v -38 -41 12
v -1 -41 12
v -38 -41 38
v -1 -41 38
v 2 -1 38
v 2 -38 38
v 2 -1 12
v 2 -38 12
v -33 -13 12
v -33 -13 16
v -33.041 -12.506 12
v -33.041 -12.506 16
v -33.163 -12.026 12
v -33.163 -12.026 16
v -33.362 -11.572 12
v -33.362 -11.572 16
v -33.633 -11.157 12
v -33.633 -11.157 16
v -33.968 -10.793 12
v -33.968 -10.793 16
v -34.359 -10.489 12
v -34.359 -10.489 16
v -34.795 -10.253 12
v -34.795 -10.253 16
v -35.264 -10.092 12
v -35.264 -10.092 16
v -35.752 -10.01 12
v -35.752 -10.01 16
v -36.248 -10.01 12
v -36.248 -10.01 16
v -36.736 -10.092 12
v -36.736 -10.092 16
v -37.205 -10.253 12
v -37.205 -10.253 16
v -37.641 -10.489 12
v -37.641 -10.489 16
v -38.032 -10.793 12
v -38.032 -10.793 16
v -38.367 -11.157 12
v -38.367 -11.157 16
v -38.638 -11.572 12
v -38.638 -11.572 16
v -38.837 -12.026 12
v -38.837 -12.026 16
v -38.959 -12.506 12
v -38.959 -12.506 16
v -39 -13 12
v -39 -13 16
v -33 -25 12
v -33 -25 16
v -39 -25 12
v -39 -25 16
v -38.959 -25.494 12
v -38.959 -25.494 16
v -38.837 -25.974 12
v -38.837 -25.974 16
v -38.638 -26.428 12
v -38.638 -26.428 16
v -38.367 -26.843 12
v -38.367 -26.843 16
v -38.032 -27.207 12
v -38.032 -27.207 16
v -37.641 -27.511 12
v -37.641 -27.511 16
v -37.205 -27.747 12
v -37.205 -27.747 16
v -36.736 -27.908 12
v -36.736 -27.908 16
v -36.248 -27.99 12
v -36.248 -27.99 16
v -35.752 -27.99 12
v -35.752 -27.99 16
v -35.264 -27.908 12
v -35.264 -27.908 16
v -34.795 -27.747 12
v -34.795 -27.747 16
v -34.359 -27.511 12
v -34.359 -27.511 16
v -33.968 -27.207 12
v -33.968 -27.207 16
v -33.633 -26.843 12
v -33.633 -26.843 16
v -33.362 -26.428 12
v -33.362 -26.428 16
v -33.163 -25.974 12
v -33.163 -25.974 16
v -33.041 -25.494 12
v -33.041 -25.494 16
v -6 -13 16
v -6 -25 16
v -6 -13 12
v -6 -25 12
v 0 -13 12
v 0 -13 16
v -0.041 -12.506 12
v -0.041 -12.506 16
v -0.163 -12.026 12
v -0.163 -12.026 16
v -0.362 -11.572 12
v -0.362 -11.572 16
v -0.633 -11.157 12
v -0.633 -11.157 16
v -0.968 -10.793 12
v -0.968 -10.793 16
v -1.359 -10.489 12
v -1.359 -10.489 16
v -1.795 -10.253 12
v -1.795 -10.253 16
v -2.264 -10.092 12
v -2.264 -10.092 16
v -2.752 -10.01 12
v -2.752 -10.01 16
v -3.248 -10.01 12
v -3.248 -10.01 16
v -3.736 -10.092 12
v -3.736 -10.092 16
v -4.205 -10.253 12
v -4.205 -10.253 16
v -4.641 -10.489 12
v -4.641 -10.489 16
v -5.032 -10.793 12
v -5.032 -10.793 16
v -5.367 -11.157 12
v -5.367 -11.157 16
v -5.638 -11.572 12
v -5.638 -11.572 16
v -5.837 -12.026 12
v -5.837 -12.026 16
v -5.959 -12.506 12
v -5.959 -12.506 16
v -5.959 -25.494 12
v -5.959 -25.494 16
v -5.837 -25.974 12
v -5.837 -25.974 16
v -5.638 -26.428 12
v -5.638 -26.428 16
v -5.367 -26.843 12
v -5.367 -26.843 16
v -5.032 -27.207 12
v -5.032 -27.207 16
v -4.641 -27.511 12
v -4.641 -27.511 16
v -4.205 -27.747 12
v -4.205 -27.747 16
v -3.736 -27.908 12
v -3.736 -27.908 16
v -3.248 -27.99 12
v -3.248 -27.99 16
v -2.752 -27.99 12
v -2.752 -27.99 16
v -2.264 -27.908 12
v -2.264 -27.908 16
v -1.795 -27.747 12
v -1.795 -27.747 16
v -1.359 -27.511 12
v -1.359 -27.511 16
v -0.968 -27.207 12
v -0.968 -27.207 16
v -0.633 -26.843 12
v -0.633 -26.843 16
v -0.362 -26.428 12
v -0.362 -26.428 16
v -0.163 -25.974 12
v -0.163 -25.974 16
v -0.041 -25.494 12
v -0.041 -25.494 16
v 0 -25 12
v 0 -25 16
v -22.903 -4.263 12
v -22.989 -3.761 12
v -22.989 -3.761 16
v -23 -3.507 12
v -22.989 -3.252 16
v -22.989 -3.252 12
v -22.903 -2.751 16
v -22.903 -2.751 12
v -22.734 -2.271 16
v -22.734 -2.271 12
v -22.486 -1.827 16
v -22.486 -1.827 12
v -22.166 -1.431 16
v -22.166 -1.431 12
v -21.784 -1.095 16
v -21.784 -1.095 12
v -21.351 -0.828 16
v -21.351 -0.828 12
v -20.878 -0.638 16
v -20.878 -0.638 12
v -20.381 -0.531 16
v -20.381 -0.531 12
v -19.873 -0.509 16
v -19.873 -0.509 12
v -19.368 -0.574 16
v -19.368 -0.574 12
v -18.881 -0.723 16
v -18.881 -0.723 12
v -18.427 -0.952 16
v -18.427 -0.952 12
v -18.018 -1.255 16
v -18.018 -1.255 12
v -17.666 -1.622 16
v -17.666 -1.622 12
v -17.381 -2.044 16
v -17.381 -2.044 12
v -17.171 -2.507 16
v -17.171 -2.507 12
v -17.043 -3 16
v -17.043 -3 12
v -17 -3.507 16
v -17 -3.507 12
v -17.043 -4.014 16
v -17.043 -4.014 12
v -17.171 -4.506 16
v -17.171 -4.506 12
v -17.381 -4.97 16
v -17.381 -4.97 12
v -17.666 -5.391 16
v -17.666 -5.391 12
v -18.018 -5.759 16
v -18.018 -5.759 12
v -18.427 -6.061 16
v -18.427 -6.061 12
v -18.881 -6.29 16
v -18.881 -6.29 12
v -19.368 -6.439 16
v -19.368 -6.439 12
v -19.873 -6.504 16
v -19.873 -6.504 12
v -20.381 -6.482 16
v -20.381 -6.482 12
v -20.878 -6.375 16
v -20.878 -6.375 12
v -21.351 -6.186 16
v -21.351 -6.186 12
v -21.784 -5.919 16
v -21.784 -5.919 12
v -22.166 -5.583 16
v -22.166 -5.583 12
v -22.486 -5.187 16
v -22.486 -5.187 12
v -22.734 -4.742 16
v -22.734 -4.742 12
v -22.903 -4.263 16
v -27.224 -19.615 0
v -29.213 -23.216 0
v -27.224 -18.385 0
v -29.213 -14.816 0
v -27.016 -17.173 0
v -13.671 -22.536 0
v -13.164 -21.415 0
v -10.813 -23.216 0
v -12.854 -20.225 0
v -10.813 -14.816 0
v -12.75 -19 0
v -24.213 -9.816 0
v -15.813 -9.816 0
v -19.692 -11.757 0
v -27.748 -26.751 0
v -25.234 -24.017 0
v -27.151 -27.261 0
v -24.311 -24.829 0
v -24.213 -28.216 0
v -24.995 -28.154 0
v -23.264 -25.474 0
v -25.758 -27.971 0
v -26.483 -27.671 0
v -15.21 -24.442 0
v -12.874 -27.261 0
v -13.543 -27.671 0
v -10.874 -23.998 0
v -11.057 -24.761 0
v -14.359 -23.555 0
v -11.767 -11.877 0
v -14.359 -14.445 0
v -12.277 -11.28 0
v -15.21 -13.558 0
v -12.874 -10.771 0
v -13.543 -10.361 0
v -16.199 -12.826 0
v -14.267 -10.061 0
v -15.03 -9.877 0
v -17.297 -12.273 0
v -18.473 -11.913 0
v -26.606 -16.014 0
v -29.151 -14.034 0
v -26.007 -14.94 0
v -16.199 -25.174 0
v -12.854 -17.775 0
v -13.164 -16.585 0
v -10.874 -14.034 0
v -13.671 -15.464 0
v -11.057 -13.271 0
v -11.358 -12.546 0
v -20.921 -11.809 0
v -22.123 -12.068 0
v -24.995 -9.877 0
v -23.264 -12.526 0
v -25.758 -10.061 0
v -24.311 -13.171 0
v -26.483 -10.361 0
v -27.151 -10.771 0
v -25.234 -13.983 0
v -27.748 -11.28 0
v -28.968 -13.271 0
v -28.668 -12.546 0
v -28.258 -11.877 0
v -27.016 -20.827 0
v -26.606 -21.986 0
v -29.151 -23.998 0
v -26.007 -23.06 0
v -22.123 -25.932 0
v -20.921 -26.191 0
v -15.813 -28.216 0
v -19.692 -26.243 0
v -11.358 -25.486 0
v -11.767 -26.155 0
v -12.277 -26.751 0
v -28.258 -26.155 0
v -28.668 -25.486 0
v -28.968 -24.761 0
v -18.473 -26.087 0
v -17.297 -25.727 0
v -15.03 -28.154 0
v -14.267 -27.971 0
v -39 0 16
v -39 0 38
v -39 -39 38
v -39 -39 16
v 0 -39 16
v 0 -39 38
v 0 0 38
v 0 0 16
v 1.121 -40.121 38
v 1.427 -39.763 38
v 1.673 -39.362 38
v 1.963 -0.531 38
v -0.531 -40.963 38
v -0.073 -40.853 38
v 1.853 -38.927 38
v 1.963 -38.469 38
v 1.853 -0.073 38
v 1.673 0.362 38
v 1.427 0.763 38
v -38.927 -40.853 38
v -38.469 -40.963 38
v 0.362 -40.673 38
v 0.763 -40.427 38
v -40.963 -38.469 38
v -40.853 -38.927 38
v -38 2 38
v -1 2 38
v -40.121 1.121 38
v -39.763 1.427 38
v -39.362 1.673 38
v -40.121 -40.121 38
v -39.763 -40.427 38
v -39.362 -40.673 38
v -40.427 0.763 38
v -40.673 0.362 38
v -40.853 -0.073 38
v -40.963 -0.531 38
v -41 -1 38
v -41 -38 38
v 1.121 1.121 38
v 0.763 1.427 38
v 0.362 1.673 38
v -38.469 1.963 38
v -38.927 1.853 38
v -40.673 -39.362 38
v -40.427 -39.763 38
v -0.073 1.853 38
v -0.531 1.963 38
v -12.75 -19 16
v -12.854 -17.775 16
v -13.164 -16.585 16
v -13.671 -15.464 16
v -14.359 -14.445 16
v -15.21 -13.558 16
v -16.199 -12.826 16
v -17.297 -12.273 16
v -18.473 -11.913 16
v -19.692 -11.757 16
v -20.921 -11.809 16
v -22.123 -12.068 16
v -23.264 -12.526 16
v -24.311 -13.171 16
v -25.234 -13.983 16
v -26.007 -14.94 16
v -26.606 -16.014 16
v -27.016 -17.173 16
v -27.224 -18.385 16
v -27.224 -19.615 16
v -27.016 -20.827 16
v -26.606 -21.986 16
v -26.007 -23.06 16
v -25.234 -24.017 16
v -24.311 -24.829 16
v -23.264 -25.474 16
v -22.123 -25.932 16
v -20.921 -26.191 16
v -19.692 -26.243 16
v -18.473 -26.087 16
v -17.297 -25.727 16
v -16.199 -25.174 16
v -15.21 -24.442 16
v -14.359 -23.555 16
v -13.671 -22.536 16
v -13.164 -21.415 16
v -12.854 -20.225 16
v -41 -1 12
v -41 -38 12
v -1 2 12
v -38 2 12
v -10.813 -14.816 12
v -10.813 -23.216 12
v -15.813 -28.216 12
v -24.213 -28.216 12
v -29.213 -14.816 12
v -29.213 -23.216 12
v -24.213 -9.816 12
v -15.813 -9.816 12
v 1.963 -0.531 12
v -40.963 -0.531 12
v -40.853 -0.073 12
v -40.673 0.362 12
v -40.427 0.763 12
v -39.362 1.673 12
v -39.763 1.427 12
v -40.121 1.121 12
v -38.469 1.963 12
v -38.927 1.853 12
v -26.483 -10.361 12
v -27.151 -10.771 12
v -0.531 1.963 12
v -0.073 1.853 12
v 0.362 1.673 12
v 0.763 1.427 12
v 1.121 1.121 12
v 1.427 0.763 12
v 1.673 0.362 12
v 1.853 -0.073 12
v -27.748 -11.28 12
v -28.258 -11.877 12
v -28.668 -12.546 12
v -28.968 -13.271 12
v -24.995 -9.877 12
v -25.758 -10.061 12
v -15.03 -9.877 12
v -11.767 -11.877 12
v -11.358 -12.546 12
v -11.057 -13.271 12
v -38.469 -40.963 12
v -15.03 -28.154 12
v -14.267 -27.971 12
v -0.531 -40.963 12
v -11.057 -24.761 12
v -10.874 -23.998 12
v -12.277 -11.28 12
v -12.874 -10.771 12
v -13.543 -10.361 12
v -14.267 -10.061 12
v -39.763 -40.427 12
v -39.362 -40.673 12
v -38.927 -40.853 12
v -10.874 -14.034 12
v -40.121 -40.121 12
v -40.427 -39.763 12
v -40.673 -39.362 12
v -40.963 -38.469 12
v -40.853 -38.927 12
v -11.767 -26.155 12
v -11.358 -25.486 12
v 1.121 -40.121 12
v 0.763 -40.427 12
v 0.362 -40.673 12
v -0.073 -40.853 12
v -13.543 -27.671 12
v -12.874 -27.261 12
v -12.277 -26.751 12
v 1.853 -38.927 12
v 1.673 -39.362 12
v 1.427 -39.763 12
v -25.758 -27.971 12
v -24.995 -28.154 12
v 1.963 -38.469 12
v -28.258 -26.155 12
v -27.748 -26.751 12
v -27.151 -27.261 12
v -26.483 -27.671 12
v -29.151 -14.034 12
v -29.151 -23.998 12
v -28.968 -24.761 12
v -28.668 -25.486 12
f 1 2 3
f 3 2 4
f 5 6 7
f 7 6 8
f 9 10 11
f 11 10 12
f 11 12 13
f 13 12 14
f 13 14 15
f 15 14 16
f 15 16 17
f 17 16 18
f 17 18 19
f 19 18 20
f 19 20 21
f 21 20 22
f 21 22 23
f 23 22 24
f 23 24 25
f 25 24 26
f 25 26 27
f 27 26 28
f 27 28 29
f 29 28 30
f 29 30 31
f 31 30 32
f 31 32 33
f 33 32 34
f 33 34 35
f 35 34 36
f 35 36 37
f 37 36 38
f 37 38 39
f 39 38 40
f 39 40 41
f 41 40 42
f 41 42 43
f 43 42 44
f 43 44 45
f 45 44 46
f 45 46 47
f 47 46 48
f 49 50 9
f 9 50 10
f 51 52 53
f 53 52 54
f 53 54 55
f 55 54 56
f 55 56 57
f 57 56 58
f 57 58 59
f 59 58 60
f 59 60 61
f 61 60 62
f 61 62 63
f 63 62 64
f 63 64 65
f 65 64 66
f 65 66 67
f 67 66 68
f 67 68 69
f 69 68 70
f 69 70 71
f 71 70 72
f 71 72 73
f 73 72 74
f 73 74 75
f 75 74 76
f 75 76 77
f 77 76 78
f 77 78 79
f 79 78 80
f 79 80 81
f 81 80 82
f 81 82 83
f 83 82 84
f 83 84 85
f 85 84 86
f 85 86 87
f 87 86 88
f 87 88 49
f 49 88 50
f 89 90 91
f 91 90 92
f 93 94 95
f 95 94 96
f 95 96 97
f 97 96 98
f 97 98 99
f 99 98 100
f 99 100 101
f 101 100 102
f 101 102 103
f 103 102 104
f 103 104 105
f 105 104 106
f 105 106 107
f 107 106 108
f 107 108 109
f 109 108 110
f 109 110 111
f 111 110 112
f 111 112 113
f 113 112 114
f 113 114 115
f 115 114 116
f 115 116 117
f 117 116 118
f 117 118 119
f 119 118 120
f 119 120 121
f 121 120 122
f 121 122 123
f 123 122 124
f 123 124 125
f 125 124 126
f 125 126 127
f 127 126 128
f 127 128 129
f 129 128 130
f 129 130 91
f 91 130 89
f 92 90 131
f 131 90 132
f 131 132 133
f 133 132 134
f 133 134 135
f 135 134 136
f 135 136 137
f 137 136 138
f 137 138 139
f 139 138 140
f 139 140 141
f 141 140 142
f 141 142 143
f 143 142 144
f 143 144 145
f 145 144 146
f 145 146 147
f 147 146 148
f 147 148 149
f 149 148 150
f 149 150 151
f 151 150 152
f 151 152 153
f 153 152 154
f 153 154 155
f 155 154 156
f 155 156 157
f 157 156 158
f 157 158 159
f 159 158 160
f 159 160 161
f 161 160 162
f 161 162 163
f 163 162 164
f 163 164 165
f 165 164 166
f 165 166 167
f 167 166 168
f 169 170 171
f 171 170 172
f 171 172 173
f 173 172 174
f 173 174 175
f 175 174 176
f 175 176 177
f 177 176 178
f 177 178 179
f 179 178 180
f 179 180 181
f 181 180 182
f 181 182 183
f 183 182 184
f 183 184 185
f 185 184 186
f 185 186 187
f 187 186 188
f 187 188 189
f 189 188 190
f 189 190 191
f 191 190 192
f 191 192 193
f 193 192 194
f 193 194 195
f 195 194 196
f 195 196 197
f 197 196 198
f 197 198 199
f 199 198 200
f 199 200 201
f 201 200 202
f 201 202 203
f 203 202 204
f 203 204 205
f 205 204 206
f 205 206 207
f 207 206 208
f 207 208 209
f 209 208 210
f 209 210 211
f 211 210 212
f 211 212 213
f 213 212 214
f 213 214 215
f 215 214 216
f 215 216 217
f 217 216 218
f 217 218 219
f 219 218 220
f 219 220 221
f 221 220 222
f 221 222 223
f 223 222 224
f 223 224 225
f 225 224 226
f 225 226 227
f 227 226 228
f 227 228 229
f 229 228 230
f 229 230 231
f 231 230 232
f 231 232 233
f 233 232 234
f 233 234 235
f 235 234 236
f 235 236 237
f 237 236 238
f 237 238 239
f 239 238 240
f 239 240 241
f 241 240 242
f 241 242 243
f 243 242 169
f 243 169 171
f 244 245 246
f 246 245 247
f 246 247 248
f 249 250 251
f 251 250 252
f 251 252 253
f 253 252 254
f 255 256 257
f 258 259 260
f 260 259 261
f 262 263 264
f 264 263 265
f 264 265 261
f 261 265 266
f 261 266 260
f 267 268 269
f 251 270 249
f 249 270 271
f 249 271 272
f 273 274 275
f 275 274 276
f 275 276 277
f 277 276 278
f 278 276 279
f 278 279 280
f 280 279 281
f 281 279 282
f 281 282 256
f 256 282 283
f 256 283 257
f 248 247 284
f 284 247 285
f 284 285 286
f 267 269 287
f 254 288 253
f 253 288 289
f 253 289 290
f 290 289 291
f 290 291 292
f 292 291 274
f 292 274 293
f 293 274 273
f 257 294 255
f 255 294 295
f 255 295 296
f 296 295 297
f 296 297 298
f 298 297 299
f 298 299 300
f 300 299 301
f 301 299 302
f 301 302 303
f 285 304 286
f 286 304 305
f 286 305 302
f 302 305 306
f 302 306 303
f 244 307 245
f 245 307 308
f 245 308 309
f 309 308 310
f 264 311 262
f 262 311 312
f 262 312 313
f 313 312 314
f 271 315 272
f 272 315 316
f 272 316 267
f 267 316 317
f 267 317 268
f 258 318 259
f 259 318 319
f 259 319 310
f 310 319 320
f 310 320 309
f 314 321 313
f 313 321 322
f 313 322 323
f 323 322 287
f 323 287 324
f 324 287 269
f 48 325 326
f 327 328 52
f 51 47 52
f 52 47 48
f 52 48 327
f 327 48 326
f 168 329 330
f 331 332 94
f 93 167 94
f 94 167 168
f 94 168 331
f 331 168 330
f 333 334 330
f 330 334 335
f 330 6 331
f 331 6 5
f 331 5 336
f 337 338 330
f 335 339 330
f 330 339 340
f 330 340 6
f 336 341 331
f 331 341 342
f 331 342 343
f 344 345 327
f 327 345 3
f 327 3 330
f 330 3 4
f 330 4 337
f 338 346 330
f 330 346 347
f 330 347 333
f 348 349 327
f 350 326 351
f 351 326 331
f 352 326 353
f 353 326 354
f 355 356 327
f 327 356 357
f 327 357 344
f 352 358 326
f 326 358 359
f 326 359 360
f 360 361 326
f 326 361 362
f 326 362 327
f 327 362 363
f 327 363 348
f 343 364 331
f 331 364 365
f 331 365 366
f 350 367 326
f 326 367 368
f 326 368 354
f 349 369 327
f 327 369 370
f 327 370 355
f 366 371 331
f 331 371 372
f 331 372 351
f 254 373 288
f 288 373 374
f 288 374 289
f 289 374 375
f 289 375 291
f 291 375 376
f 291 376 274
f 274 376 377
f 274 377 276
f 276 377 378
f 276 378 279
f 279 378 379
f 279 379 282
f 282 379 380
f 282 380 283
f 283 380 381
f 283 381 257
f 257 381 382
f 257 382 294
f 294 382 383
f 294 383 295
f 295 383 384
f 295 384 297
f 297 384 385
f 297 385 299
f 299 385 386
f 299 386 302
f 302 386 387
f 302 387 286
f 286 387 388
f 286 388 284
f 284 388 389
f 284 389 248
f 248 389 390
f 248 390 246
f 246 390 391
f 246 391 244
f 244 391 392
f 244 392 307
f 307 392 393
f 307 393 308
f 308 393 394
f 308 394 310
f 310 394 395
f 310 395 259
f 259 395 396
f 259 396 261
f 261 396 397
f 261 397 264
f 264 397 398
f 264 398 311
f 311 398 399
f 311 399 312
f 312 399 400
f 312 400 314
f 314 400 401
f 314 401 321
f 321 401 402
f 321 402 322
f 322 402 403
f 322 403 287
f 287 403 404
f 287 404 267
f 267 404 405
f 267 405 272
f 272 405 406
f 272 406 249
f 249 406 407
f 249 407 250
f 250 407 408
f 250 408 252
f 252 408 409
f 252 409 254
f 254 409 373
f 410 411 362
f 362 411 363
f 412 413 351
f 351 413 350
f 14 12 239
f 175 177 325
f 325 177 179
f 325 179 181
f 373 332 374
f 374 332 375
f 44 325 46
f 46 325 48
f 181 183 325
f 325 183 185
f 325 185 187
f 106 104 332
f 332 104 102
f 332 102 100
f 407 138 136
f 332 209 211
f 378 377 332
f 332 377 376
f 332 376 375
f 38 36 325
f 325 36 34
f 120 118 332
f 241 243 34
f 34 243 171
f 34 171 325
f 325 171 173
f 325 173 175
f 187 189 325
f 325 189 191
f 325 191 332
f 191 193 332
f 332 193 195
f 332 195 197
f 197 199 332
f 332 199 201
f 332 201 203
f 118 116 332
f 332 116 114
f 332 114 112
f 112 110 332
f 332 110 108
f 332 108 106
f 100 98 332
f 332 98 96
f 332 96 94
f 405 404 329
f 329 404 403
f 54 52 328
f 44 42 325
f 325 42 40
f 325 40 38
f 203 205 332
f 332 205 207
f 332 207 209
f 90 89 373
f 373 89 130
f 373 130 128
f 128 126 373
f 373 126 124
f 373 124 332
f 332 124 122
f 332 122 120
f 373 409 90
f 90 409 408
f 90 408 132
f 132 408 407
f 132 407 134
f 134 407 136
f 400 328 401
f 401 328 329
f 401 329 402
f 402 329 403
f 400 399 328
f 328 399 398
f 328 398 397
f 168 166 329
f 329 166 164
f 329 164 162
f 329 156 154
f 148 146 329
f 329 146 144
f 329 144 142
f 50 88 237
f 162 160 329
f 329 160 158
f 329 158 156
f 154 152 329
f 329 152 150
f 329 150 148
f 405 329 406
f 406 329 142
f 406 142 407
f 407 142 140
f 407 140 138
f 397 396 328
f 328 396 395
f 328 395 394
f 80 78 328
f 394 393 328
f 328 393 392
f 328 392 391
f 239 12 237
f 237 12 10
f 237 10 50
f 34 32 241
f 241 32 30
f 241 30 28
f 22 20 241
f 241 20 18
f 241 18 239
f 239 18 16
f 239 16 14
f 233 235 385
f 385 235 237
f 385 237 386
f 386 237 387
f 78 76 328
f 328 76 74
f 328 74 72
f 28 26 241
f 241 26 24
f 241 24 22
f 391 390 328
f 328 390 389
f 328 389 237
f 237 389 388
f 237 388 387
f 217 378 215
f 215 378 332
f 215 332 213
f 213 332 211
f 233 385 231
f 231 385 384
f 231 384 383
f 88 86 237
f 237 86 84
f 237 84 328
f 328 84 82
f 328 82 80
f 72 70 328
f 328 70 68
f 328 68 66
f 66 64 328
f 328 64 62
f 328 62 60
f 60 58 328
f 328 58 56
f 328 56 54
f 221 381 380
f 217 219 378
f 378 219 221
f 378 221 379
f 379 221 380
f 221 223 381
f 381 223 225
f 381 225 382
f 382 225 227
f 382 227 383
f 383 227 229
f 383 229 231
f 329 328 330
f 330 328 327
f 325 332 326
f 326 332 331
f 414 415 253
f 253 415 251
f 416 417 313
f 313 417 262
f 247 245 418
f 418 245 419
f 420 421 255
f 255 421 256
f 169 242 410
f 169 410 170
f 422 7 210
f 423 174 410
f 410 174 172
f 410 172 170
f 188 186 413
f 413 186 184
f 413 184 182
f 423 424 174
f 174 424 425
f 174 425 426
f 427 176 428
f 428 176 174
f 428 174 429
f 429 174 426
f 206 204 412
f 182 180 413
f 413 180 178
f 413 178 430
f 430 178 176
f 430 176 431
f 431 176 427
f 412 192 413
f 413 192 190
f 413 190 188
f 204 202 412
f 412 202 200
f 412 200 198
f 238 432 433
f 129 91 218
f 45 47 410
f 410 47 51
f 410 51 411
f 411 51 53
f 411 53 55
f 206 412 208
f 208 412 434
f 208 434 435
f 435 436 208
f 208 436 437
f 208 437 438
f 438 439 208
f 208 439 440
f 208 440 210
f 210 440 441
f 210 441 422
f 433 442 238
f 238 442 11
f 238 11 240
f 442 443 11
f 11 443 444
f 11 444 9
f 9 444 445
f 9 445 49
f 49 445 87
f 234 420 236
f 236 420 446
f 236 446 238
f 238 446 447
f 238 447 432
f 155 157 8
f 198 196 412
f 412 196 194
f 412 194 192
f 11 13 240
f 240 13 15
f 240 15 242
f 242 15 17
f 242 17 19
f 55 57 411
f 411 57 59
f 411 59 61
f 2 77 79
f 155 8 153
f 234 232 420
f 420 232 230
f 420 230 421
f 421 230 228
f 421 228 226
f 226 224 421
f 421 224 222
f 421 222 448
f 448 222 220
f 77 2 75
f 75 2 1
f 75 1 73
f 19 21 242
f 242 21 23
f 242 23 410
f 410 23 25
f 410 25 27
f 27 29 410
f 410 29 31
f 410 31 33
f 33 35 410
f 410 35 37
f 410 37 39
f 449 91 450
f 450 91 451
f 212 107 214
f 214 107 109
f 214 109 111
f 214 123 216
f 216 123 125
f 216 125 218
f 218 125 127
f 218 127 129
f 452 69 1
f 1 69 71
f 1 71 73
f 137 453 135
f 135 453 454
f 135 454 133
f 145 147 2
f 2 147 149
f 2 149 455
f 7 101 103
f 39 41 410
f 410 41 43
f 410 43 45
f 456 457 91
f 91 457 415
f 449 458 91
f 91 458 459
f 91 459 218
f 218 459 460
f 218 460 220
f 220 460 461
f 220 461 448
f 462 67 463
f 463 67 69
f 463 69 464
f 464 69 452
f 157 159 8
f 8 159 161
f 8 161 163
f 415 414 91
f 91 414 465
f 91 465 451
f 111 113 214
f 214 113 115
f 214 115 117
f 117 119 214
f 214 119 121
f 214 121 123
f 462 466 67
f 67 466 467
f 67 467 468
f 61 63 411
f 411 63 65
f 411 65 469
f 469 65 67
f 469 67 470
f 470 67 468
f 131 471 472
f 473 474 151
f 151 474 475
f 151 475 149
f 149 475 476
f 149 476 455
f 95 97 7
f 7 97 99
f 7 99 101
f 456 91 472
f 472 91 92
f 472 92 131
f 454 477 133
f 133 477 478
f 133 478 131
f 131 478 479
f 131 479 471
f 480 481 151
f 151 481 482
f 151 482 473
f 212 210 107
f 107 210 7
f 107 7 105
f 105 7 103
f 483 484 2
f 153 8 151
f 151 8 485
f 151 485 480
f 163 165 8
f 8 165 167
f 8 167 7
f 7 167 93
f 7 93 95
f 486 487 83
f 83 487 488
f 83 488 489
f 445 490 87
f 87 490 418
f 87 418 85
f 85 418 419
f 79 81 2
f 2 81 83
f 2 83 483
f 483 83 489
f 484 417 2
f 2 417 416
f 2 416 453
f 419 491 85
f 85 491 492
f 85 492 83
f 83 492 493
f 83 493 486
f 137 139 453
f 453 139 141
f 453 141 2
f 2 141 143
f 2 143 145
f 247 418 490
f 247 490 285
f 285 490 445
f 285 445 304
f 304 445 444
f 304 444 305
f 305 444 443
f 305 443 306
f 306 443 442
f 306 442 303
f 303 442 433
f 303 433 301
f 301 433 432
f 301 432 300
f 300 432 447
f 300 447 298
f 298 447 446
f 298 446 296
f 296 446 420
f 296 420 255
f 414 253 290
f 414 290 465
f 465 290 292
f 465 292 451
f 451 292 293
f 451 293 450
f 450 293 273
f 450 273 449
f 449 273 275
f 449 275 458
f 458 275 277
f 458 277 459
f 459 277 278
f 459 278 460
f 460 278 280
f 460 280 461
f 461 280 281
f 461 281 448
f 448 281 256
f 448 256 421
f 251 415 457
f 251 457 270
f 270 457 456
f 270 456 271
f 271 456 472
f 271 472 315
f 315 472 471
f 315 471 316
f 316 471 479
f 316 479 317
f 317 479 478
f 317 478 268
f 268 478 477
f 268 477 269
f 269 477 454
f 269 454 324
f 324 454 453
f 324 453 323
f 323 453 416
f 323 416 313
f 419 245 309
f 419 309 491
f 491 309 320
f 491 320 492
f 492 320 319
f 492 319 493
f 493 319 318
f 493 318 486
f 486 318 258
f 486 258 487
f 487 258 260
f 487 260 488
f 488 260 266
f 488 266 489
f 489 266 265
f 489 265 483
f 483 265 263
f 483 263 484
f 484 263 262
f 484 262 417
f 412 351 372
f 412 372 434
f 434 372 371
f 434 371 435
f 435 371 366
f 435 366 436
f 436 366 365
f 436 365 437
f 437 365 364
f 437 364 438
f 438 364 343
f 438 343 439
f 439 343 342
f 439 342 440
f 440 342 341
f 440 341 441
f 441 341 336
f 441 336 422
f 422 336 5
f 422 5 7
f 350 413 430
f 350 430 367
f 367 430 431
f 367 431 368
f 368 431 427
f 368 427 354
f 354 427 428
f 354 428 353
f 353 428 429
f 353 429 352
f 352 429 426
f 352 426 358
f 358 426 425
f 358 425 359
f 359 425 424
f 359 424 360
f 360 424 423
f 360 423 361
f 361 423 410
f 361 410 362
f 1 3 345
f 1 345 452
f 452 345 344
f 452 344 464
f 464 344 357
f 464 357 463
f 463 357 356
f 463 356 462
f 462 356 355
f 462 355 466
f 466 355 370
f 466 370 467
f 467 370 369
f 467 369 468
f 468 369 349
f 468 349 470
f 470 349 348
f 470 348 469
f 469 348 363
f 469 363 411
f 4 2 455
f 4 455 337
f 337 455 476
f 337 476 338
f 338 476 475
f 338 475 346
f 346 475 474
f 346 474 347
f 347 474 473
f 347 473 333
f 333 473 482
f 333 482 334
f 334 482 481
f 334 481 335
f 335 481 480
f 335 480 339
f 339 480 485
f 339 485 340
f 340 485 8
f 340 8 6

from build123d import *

# Parameters (mm, degrees)
SKETCH1_W           = 43
SKETCH1_H           = 43
BOSS_EXTRUDE1_DEPTH = 38
SKETCH3_R           = 3
SKETCH3_R_2         = 7.25
CUT_EXTRUDE4_DEPTH  = 38
SKETCH6_W           = 39
SKETCH6_H           = 39
CUT_EXTRUDE5_DEPTH  = 22
CUT_EXTRUDE8_START  = -12
SKETCH7_W           = 43
SKETCH7_H           = 43
SKETCH7_R           = 3
SKETCH7_W_2         = 18.4
SKETCH7_H_2         = 18.4
CUT_EXTRUDE8_DEPTH  = 12
FILLET2_R           = 5
FILLET3_R           = 3


with BuildPart() as part:
    # Sketch1 → Boss-Extrude1 (new body)
    with BuildSketch(Plane(origin=(0, 0, 0), x_dir=(0, 1, 0), z_dir=(0, 0, 1))):
        with Locations((-19.5, 19.5)):
            Rectangle(SKETCH1_W, SKETCH1_H)
    extrude(amount=BOSS_EXTRUDE1_DEPTH)

    # Sketch3 → Cut-Extrude4 (cut)
    with BuildSketch(Plane.XY.offset(38)):
        with Locations((-20, -3.506761261)):
            Circle(SKETCH3_R)
        with Locations((-20, -19)):
            Circle(SKETCH3_R_2)
        with BuildLine():
            Line((-6, -13), (-6, -25))
            ThreePointArc((-6, -25), (-3, -28), (0, -25))
            Line((0, -25), (0, -13))
            ThreePointArc((0, -13), (-3, -10), (-6, -13))
        make_face()
        with BuildLine():
            Line((-33, -13), (-33, -25))
            ThreePointArc((-33, -25), (-36, -28), (-39, -25))
            Line((-39, -25), (-39, -13))
            ThreePointArc((-39, -13), (-36, -10), (-33, -13))
        make_face()
    extrude(amount=-CUT_EXTRUDE4_DEPTH, mode=Mode.SUBTRACT)

    # Sketch6 → Cut-Extrude5 (cut)
    with BuildSketch(Plane.XY.offset(38)):
        with Locations((-19.5, -19.5)):
            Rectangle(SKETCH6_W, SKETCH6_H)
    extrude(amount=-CUT_EXTRUDE5_DEPTH, mode=Mode.SUBTRACT)

    # Sketch7 → Cut-Extrude8 (cut)
    with BuildSketch(Plane(origin=(0, 0, 0), x_dir=(1, 0, 0), z_dir=(0, 0, -1)).offset(CUT_EXTRUDE8_START)):
        with Locations((-19.5, 19.5)):
            Rectangle(SKETCH7_W, SKETCH7_H)
        with Locations((-20, 3.506761261)):
            Circle(SKETCH7_R, mode=Mode.SUBTRACT)
        with Locations((-20.012556467, 19.015852406)):
            Rectangle(SKETCH7_W_2, SKETCH7_H_2, mode=Mode.SUBTRACT)
        with BuildLine():
            Line((-33, 25), (-33, 13))
            ThreePointArc((-33, 13), (-36, 10), (-39, 13))
            Line((-39, 13), (-39, 25))
            ThreePointArc((-39, 25), (-36, 28), (-33, 25))
        make_face(mode=Mode.SUBTRACT)
        with BuildLine():
            ThreePointArc((0, 13), (-3, 10), (-6, 13))
            Line((-6, 13), (-6, 25))
            ThreePointArc((-6, 25), (-3, 28), (0, 25))
            Line((0, 25), (0, 13))
        make_face(mode=Mode.SUBTRACT)
    extrude(amount=CUT_EXTRUDE8_DEPTH, mode=Mode.SUBTRACT)

    # Fillet2
    fillet2_edges = [part.edges().sort_by_distance(p)[0] for p in [
        (-10.812556467, -9.815852406, 6),
        (-10.812556467, -28.215852406, 6),
        (-29.212556467, -28.215852406, 6),
        (-29.212556467, -9.815852406, 6),
    ]]
    fillet(fillet2_edges, radius=FILLET2_R)

    # Fillet3
    fillet3_edges = [part.edges().sort_by_distance(p)[0] for p in [
        (-41, -41, 25),
        (2, -41, 25),
        (2, 2, 25),
        (-41, 2, 25),
    ]]
    fillet(fillet3_edges, radius=FILLET3_R)


solid = part.part
